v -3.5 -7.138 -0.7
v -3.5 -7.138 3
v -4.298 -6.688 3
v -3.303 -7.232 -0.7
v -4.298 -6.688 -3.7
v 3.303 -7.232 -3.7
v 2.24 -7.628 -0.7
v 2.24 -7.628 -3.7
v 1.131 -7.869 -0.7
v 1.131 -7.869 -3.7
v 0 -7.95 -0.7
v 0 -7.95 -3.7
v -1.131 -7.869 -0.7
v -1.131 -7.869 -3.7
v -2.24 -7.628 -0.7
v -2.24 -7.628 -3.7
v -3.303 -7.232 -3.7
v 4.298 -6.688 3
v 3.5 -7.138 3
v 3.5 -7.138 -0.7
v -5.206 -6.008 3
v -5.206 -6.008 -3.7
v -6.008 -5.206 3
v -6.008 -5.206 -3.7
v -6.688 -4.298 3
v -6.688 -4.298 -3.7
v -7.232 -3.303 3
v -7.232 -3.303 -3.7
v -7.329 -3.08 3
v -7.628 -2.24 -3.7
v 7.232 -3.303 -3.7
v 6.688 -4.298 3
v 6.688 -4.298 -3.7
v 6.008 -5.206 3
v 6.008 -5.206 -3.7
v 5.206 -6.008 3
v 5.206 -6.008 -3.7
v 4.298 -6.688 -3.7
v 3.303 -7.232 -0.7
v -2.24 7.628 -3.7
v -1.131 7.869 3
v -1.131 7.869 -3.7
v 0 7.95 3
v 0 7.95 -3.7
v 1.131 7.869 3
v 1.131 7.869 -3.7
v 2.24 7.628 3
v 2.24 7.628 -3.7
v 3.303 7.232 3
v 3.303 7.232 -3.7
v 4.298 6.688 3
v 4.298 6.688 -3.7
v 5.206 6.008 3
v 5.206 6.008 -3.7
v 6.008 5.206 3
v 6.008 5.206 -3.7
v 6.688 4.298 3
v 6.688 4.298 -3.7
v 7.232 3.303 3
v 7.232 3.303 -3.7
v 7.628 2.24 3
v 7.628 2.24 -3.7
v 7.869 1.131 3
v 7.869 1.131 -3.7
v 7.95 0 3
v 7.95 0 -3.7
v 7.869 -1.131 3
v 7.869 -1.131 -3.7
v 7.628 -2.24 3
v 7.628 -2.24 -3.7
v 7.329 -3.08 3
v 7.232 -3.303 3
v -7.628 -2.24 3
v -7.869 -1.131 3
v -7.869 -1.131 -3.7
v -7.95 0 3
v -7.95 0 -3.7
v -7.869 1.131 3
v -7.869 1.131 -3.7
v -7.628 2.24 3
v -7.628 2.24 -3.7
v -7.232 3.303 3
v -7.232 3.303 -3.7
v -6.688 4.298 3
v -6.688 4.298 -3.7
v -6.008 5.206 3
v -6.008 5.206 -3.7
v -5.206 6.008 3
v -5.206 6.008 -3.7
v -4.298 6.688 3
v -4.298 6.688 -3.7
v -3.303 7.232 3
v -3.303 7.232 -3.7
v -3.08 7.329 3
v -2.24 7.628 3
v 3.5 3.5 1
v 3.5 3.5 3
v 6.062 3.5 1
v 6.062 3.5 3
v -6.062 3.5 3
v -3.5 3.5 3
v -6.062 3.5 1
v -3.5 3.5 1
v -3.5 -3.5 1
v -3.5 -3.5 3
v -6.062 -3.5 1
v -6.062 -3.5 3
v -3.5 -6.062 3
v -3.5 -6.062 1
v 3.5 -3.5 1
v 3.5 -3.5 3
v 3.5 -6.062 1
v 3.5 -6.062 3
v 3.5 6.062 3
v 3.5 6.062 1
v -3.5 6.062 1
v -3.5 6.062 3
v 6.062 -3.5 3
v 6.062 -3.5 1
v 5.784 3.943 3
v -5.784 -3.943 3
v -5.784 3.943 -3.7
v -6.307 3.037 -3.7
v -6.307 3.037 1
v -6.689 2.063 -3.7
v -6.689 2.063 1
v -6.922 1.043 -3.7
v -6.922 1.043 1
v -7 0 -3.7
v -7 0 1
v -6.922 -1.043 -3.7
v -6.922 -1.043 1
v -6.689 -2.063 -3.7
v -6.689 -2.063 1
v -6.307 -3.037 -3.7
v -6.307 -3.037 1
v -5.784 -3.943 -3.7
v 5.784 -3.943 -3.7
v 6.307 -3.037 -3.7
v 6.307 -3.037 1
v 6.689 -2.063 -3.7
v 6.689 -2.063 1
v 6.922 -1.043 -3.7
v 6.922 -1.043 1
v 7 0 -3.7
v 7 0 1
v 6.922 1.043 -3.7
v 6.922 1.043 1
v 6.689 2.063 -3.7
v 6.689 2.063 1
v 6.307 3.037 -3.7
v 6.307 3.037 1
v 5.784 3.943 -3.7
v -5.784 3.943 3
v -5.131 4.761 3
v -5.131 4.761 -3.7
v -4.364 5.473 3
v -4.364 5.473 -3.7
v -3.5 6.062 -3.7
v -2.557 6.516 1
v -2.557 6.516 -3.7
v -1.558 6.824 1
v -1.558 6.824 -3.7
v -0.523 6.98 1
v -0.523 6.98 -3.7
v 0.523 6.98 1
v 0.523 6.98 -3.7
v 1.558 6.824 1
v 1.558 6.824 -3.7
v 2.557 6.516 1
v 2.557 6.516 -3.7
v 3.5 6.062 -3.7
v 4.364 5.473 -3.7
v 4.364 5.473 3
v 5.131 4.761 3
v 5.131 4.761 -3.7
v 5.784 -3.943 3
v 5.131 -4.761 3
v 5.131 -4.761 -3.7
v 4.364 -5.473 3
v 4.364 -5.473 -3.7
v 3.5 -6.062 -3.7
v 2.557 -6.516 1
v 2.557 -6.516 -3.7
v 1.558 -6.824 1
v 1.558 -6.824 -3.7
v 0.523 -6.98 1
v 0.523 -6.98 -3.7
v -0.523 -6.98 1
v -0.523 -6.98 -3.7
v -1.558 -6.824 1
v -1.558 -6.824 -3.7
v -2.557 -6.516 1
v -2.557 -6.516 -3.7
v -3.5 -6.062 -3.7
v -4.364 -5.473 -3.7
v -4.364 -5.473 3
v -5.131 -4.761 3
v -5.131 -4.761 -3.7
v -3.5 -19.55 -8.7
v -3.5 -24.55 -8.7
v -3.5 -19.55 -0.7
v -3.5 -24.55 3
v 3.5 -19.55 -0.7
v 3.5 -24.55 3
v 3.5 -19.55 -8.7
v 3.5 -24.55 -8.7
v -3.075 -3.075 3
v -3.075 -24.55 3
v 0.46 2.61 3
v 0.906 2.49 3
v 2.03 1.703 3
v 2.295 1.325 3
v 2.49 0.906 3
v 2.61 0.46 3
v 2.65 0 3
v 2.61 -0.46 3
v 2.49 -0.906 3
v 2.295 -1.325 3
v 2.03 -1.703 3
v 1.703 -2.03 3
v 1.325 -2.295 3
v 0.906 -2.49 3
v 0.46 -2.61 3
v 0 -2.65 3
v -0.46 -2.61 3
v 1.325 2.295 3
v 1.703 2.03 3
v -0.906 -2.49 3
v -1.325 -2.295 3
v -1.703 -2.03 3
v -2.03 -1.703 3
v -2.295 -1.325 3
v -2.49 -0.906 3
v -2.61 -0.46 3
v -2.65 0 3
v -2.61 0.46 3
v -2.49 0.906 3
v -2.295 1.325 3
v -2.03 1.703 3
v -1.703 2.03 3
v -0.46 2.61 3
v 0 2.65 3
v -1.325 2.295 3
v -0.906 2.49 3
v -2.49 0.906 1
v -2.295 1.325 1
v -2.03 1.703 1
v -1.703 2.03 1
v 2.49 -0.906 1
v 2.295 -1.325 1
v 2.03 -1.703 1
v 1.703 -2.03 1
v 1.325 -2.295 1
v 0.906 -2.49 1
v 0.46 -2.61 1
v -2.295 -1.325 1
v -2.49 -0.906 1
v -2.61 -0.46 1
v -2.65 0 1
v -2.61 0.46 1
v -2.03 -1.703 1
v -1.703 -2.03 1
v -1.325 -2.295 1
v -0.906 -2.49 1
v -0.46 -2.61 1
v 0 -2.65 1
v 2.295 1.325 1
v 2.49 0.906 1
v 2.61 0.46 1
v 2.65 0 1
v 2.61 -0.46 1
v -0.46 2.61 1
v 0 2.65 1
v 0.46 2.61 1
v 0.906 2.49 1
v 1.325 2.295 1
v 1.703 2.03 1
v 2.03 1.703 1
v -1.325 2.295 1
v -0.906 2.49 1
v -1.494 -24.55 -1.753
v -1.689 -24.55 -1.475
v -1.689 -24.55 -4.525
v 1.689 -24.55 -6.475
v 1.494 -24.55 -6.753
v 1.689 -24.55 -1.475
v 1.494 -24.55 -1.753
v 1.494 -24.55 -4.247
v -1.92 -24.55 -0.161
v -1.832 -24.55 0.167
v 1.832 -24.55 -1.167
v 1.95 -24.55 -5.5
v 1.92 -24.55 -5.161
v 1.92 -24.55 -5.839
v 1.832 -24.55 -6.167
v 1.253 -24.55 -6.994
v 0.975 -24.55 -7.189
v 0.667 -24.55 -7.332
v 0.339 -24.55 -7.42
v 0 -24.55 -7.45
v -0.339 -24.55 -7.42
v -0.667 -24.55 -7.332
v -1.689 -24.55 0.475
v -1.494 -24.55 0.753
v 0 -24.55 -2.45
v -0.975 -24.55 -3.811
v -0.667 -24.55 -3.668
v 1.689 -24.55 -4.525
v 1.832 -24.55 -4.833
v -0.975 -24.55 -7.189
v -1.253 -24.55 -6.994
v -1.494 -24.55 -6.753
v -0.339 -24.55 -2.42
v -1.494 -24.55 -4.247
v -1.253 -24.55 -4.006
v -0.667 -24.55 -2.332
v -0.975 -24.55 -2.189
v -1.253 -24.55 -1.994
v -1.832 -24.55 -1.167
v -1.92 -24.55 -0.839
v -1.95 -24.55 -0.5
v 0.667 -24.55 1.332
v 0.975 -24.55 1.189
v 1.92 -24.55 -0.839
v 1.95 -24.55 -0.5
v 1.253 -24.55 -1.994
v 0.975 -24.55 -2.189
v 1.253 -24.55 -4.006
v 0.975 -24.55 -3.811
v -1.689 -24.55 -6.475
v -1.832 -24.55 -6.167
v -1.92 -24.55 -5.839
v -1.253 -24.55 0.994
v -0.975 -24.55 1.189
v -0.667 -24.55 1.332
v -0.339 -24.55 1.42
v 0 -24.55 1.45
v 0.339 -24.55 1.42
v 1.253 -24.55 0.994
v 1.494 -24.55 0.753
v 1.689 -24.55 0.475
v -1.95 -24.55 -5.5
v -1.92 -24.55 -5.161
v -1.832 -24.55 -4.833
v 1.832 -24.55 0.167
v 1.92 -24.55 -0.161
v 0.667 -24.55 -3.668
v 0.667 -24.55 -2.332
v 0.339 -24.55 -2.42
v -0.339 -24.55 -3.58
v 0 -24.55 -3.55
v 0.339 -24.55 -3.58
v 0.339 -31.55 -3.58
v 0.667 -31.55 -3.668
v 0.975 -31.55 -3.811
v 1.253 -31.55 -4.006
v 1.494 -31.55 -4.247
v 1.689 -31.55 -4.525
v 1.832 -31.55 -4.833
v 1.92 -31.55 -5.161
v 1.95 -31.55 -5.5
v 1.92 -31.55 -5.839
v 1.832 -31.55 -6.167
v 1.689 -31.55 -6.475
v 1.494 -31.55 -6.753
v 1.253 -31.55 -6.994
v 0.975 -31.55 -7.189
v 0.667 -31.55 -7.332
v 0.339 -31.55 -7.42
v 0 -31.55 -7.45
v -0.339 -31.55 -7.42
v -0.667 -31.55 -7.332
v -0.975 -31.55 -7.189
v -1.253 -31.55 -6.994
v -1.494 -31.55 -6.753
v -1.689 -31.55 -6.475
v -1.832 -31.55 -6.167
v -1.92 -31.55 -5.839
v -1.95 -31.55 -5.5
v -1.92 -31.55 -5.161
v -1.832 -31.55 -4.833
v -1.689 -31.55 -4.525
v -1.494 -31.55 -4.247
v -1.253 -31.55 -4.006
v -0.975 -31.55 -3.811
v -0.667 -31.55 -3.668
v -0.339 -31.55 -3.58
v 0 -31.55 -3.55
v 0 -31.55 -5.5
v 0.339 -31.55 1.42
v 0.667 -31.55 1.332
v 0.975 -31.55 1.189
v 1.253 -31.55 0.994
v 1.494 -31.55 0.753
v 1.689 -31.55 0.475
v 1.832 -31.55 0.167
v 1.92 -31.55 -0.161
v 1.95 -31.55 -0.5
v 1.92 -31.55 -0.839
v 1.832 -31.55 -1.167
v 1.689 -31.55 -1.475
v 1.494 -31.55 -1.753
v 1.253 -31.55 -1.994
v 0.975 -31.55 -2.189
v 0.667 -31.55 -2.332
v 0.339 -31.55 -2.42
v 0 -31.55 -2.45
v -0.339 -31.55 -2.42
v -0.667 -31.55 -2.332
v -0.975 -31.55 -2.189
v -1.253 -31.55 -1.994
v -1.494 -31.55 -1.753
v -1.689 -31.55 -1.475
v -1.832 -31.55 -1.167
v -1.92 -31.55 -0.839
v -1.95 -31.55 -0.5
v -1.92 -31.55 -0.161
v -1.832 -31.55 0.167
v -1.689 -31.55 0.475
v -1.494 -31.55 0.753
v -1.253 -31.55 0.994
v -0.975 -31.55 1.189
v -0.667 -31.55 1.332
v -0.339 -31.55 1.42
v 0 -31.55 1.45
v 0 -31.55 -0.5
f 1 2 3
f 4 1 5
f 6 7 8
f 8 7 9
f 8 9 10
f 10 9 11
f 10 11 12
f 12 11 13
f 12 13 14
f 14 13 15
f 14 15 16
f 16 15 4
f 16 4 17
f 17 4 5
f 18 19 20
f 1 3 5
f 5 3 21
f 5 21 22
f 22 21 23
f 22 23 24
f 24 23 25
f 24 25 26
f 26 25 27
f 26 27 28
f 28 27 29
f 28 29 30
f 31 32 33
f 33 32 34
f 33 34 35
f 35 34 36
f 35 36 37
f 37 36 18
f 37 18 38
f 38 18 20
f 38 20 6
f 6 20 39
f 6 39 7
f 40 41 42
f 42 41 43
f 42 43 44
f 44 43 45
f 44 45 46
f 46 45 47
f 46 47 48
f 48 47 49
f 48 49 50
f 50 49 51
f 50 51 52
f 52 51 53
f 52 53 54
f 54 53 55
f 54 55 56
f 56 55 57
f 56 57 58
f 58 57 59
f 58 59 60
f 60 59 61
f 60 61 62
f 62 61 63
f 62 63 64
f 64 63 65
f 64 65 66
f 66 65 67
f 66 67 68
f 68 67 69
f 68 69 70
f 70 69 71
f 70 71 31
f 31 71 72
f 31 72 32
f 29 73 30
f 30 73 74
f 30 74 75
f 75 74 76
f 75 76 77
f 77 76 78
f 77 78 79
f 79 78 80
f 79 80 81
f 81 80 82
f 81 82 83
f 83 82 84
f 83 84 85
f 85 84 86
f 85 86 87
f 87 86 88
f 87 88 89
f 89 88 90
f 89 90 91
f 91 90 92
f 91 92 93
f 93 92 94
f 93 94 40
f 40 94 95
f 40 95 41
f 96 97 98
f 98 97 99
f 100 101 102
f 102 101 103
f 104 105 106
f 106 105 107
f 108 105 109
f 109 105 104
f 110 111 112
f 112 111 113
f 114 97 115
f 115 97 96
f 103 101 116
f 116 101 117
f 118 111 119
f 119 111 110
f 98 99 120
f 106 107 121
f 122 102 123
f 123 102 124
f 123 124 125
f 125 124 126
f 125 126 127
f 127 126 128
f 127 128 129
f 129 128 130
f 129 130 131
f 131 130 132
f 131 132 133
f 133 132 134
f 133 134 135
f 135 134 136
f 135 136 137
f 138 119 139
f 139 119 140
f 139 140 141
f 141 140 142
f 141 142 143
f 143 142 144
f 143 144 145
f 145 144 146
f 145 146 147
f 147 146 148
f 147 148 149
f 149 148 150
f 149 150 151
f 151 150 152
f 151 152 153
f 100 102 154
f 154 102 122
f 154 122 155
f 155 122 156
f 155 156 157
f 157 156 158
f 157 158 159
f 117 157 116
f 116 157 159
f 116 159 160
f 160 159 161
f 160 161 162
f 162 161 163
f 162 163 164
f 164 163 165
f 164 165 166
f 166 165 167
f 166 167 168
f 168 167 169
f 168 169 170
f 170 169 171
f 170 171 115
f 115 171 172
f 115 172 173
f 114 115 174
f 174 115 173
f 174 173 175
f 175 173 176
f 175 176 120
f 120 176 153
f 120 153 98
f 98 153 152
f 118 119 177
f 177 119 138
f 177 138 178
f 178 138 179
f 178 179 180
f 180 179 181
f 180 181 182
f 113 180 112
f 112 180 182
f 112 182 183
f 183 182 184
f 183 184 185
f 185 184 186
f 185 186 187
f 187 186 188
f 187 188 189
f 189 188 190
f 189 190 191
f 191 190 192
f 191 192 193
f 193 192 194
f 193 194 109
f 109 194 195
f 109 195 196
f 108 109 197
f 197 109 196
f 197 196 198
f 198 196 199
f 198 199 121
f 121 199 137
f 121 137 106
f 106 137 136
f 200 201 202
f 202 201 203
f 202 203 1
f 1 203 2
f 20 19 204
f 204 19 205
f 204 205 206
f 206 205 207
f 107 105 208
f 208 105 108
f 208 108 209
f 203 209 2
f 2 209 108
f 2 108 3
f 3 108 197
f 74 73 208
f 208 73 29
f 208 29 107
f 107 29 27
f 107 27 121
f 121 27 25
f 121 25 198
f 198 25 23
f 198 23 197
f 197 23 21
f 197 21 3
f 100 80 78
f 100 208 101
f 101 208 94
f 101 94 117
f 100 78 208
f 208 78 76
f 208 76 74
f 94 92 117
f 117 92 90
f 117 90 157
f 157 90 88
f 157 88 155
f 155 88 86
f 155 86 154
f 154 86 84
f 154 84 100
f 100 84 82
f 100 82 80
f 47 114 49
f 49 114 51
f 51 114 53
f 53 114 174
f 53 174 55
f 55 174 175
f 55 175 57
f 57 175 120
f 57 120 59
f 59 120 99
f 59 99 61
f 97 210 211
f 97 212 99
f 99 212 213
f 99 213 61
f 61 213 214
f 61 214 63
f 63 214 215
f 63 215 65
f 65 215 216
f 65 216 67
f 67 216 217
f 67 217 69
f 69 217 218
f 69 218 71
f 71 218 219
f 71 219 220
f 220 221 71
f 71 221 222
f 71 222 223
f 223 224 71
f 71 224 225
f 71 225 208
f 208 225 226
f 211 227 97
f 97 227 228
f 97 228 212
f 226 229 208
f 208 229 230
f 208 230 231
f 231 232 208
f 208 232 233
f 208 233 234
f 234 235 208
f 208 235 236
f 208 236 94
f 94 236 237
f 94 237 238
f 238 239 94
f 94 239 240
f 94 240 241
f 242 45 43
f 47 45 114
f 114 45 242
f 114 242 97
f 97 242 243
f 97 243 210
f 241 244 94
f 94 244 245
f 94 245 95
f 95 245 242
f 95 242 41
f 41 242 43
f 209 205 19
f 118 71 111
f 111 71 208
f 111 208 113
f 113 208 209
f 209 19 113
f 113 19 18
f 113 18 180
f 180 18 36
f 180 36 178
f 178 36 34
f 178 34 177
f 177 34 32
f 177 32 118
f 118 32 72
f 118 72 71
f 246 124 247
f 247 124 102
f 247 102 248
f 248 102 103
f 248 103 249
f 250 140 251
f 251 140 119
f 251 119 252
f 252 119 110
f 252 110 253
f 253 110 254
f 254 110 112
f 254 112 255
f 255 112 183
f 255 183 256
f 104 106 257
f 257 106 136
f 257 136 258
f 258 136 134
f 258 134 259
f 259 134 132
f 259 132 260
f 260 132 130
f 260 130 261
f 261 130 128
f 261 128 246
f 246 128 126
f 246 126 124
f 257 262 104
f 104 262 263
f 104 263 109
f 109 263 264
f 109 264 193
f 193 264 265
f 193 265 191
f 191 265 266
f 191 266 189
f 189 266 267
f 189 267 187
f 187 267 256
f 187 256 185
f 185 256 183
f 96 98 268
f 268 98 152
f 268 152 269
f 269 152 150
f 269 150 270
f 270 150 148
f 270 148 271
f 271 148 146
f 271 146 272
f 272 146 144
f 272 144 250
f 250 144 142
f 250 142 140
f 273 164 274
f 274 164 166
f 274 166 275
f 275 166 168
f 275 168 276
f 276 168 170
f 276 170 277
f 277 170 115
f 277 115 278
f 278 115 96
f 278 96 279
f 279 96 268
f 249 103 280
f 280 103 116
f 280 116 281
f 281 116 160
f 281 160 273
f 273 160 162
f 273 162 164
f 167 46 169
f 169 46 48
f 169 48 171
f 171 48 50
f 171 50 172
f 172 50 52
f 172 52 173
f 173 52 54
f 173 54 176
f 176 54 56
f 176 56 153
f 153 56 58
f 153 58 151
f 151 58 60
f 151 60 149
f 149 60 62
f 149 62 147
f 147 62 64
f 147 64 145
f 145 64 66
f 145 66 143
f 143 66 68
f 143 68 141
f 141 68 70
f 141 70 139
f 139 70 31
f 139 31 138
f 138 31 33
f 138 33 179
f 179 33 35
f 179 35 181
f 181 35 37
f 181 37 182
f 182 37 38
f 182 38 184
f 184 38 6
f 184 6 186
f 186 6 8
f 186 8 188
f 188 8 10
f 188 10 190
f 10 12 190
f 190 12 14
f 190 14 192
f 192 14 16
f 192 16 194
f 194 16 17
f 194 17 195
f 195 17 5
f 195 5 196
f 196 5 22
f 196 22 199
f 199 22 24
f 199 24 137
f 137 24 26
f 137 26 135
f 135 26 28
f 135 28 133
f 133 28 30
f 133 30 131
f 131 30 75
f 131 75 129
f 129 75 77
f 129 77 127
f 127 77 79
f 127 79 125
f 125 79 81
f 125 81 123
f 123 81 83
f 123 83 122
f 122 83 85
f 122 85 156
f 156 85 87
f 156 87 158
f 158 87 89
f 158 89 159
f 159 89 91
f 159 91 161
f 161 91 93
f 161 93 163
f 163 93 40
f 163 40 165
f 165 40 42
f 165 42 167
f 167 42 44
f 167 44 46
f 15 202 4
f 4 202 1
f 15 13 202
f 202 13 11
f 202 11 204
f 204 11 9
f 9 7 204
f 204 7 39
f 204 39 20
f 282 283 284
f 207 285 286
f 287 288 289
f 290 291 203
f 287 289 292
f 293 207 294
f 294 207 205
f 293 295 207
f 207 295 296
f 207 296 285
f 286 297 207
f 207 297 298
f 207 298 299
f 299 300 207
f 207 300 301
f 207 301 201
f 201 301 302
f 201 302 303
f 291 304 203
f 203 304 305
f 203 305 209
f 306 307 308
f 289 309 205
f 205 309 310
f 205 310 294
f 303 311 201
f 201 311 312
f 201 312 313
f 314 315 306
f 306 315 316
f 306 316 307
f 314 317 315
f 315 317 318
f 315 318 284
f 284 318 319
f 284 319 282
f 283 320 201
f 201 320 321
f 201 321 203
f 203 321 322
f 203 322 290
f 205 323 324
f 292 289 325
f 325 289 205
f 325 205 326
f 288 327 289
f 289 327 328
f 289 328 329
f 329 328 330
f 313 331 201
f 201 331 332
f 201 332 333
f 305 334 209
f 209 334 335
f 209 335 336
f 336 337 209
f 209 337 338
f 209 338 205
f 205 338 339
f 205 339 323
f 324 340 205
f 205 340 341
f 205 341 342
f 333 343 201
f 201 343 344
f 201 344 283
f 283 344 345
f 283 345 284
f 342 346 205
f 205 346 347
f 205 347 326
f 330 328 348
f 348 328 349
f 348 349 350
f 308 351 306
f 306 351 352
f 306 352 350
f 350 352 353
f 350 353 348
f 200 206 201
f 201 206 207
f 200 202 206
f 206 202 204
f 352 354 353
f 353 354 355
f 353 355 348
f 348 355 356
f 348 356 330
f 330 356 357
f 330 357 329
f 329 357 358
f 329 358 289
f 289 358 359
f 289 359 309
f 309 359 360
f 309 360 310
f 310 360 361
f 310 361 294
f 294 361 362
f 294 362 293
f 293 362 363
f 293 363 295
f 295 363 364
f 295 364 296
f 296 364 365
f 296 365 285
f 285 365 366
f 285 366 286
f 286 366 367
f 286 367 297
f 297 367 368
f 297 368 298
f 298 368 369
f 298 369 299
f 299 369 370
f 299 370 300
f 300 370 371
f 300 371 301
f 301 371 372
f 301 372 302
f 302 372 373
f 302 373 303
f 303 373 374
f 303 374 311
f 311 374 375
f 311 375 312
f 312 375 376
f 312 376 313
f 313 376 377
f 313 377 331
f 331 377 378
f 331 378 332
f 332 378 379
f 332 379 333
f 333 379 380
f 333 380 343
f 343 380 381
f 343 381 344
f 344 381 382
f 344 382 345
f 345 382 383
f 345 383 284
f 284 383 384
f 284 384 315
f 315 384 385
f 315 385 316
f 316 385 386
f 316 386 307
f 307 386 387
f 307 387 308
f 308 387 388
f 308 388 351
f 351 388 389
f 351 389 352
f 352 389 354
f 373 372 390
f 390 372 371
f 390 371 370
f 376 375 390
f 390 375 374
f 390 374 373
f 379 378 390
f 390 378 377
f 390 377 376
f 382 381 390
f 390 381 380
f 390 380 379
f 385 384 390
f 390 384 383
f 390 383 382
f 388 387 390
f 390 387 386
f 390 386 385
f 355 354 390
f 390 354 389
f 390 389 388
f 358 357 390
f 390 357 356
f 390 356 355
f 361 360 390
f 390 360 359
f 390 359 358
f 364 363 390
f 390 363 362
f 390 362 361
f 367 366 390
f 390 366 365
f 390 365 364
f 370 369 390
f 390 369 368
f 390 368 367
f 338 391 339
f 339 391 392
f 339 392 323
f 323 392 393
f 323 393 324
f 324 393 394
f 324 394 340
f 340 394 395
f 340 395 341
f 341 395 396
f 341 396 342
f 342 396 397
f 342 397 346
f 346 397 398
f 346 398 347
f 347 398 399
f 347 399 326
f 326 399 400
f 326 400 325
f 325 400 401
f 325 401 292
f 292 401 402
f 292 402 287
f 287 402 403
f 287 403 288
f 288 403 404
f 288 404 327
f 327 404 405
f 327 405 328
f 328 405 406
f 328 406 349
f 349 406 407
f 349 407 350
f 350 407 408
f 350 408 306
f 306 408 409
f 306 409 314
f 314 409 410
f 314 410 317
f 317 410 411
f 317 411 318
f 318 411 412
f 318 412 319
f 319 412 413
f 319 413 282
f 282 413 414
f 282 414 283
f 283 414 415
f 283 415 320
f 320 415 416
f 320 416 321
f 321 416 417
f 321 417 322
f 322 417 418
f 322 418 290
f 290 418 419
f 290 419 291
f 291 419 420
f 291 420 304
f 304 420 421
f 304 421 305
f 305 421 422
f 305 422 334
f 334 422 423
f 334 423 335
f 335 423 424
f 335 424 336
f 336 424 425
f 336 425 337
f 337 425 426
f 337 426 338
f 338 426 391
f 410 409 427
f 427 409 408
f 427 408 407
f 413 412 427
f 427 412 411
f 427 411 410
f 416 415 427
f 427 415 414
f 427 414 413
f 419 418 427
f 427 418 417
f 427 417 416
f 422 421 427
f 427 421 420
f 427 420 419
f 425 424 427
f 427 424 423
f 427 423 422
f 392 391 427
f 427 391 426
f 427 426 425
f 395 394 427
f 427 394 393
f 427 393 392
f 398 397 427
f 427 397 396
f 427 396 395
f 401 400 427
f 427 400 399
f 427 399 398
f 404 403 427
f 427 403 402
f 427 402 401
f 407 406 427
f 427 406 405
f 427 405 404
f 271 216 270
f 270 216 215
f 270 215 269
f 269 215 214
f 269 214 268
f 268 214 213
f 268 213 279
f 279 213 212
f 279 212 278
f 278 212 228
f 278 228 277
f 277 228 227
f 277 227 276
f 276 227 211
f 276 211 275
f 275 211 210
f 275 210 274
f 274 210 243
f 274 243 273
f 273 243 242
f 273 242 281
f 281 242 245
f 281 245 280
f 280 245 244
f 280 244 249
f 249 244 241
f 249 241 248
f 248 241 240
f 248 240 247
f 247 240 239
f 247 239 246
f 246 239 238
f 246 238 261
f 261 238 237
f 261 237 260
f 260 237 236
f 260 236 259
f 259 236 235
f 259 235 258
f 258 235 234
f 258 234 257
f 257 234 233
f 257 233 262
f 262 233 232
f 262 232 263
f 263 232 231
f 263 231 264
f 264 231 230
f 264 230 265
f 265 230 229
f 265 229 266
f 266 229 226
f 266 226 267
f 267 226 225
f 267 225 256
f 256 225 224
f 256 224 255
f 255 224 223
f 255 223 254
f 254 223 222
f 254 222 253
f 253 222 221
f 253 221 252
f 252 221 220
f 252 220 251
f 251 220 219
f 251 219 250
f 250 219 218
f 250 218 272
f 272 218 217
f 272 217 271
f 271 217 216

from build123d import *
from build123d.topology import SkipClean

# Parameters (mm, degrees)
SKETCH1_R            = 1.5
BOSS_EXTRUDE4_DEPTH  = 3
BOSS_EXTRUDE5_START  = 3
SKETCH3_R            = 7.95
SKETCH3_R_2          = 1.5
BOSS_EXTRUDE5_DEPTH  = 3
SKETCH4_R            = 2.5
CUT_EXTRUDE1_DEPTH   = 1.5
SKETCH5_R            = 7
CUT_EXTRUDE2_DEPTH   = 4
SKETCH6_R            = 7.95
CUT_EXTRUDE3_DEPTH   = 1
SKETCH7_R            = 2.5
CUT_EXTRUDE4_DEPTH   = 0.5
BOSS_EXTRUDE6_START  = 0.7
SKETCH8_R            = 7.95
SKETCH8_R_2          = 7
BOSS_EXTRUDE6_DEPTH  = 0.7
BOSS_EXTRUDE8_START  = 0.7
SKETCH9_R            = 7.95
SKETCH9_R_2          = 1.5
BOSS_EXTRUDE8_DEPTH  = 0.7
BOSS_EXTRUDE9_START  = 0.7
BOSS_EXTRUDE9_DEPTH  = 0.7
SKETCH15_R           = 7
SKETCH15_R_2         = 4.949747468
BOSS_EXTRUDE12_DEPTH = 5.7
SKETCH16_W           = 7
SKETCH16_H           = 7
CUT_EXTRUDE7_DEPTH   = 5.7
SKETCH17_W           = 21.103619628
SKETCH17_H           = 19.457314619
CUT_EXTRUDE8_DEPTH   = 10
SKETCH18_W           = 7
SKETCH18_H           = 8
BOSS_EXTRUDE13_DEPTH = 5
SKETCH19_R           = 1.95
BOSS_EXTRUDE14_DEPTH = 7
SKETCH20_R           = 2.65
CUT_EXTRUDE9_DEPTH   = 10


with BuildPart() as part:
    # Sketch1 → Boss-Extrude4 (new body)
    with BuildSketch(Plane.XY):
        with BuildLine():
            Line((-3.5, -7.138101989), (-3.5, -27.861898011))
            ThreePointArc((-3.5, -27.861898011), (0, -42.95), (3.5, -27.861898011))
            Line((3.5, -27.861898011), (3.5, -7.138101989))
            ThreePointArc((3.5, -7.138101989), (0, 7.95), (-3.5, -7.138101989))
        make_face()
        with BuildLine():
            Line((-3.5, 6.062177826), (-3.5, 3.5))
            Line((-3.5, 3.5), (-6.062177826, 3.5))
            ThreePointArc((-6.062177826, 3.5), (-4.949747468, 4.949747468), (-3.5, 6.062177826))
        make_face(mode=Mode.SUBTRACT)
        with BuildLine():
            Line((3.5, 3.5), (3.5, 6.062177826))
            ThreePointArc((3.5, 6.062177826), (4.949747468, 4.949747468), (6.062177826, 3.5))
            Line((6.062177826, 3.5), (3.5, 3.5))
        make_face(mode=Mode.SUBTRACT)
        Circle(SKETCH1_R, mode=Mode.SUBTRACT)
        with BuildLine():
            Line((-6.062177826, -3.5), (-3.5, -3.5))
            Line((-3.5, -3.5), (-3.5, -6.062177826))
            ThreePointArc((-3.5, -6.062177826), (-4.949747468, -4.949747468), (-6.062177826, -3.5))
        make_face(mode=Mode.SUBTRACT)
        with BuildLine():
            Line((3.5, -3.5), (6.062177826, -3.5))
            ThreePointArc((6.062177826, -3.5), (4.949747468, -4.949747468), (3.5, -6.062177826))
            Line((3.5, -6.062177826), (3.5, -3.5))
        make_face(mode=Mode.SUBTRACT)
        with BuildLine():
            ThreePointArc((3.5, -28.937822174), (4.949747468, -30.050252532), (6.062177826, -31.5))
            Line((6.062177826, -31.5), (3.5, -31.5))
            Line((3.5, -31.5), (3.5, -28.937822174))
        make_face(mode=Mode.SUBTRACT)
        with BuildLine():
            Line((-3.5, -28.937822174), (-3.5, -31.5))
            Line((-3.5, -31.5), (-6.062177826, -31.5))
            ThreePointArc((-6.062177826, -31.5), (-4.949747468, -30.050252532), (-3.5, -28.937822174))
        make_face(mode=Mode.SUBTRACT)
        with BuildLine():
            ThreePointArc((-3.5, -41.062177826), (-4.949747468, -39.949747468), (-6.062177826, -38.5))
            Line((-6.062177826, -38.5), (-3.5, -38.5))
            Line((-3.5, -38.5), (-3.5, -41.062177826))
        make_face(mode=Mode.SUBTRACT)
        with BuildLine():
            ThreePointArc((6.062177826, -38.5), (4.949747468, -39.949747468), (3.5, -41.062177826))
            Line((3.5, -41.062177826), (3.5, -38.5))
            Line((3.5, -38.5), (6.062177826, -38.5))
        make_face(mode=Mode.SUBTRACT)
        with Locations((0, -35)):
            Circle(SKETCH1_R, mode=Mode.SUBTRACT)
    extrude(amount=BOSS_EXTRUDE4_DEPTH)

    # Sketch3 → Boss-Extrude5 (add)
    # profile 1 of 2: a face of its own
    with SkipClean():  # the faces are left unmerged after this step: merging them gives an invalid solid
        with BuildSketch(Plane(origin=(0, 0, 0), x_dir=(-1, 0, 0), z_dir=(0, 0, -1)).offset(BOSS_EXTRUDE5_START)):
            Circle(SKETCH3_R)
            with BuildLine():
                Line((3.5, 3.5), (3.5, 6.062177826))
                ThreePointArc((3.5, 6.062177826), (4.949747468, 4.949747468), (6.062177826, 3.5))
                Line((6.062177826, 3.5), (3.5, 3.5))
            make_face(mode=Mode.SUBTRACT)
            with BuildLine():
                Line((3.5, -3.5), (6.062177826, -3.5))
                ThreePointArc((6.062177826, -3.5), (4.949747468, -4.949747468), (3.5, -6.062177826))
                Line((3.5, -6.062177826), (3.5, -3.5))
            make_face(mode=Mode.SUBTRACT)
            with BuildLine():
                Line((-3.5, -3.5), (-3.5, -6.062177826))
                ThreePointArc((-3.5, -6.062177826), (-4.949747468, -4.949747468), (-6.062177826, -3.5))
                Line((-6.062177826, -3.5), (-3.5, -3.5))
            make_face(mode=Mode.SUBTRACT)
            with BuildLine():
                Line((-3.5, 3.5), (-6.062177826, 3.5))
                ThreePointArc((-6.062177826, 3.5), (-4.949747468, 4.949747468), (-3.5, 6.062177826))
                Line((-3.5, 6.062177826), (-3.5, 3.5))
            make_face(mode=Mode.SUBTRACT)
            Circle(SKETCH3_R_2, mode=Mode.SUBTRACT)
        # profile 2 of 2: a face of its own
        with BuildSketch(Plane(origin=(0, 0, 0), x_dir=(-1, 0, 0), z_dir=(0, 0, -1)).offset(BOSS_EXTRUDE5_START)):
            with Locations((0, -35)):
                Circle(SKETCH3_R)
            with BuildLine():
                Line((-3.5, -38.5), (-3.5, -41.062177826))
                ThreePointArc((-3.5, -41.062177826), (-4.949747468, -39.949747468), (-6.062177826, -38.5))
                Line((-6.062177826, -38.5), (-3.5, -38.5))
            make_face(mode=Mode.SUBTRACT)
            with BuildLine():
                Line((-3.5, -31.5), (-6.062177826, -31.5))
                ThreePointArc((-6.062177826, -31.5), (-4.949747468, -30.050252532), (-3.5, -28.937822174))
                Line((-3.5, -28.937822174), (-3.5, -31.5))
            make_face(mode=Mode.SUBTRACT)
            with BuildLine():
                Line((3.5, -31.5), (3.5, -28.937822174))
                ThreePointArc((3.5, -28.937822174), (4.949747468, -30.050252532), (6.062177826, -31.5))
                Line((6.062177826, -31.5), (3.5, -31.5))
            make_face(mode=Mode.SUBTRACT)
            with BuildLine():
                Line((3.5, -38.5), (6.062177826, -38.5))
                ThreePointArc((6.062177826, -38.5), (4.949747468, -39.949747468), (3.5, -41.062177826))
                Line((3.5, -41.062177826), (3.5, -38.5))
            make_face(mode=Mode.SUBTRACT)
            with Locations((0, -35)):
                Circle(SKETCH3_R_2, mode=Mode.SUBTRACT)
        extrude(amount=-BOSS_EXTRUDE5_DEPTH)

    # Sketch4 → Cut-Extrude1 (cut)
    with SkipClean():  # the faces are left unmerged after this step: merging them gives an invalid solid
        with BuildSketch(Plane.XY.offset(3)):
            with Locations((0, -35)):
                Circle(SKETCH4_R)
            Circle(SKETCH4_R)
        extrude(amount=-CUT_EXTRUDE1_DEPTH, mode=Mode.SUBTRACT)

    # Sketch5 → Cut-Extrude2 (cut)
    with SkipClean():  # the faces are left unmerged after this step: merging them gives an invalid solid
        with BuildSketch(Plane(origin=(0, 0, -3), x_dir=(-1, 0, 0), z_dir=(0, 0, -1))):
            Circle(SKETCH5_R)
        extrude(amount=-CUT_EXTRUDE2_DEPTH, mode=Mode.SUBTRACT)
    add(part.part.scale(1), mode=Mode.REPLACE)  # the faces are merged on a copy

    # Sketch6 → Cut-Extrude3 (cut)
    with BuildSketch(Plane(origin=(0, 0, -3), x_dir=(-1, 0, 0), z_dir=(0, 0, -1))):
        with Locations((0, -35)):
            Circle(SKETCH6_R)
    extrude(amount=-CUT_EXTRUDE3_DEPTH, mode=Mode.SUBTRACT)

    # Sketch7 → Cut-Extrude4 (cut)
    with BuildSketch(Plane.XY.offset(1.5)):
        with Locations((0, -35)):
            Circle(SKETCH7_R)
    extrude(amount=-CUT_EXTRUDE4_DEPTH, mode=Mode.SUBTRACT)

    # Sketch8 → Boss-Extrude6 (add)
    with BuildSketch(Plane(origin=(0, 0, -3), x_dir=(-1, 0, 0), z_dir=(0, 0, -1)).offset(BOSS_EXTRUDE6_START)):
        Circle(SKETCH8_R)
        Circle(SKETCH8_R_2, mode=Mode.SUBTRACT)
    extrude(amount=-BOSS_EXTRUDE6_DEPTH)

    # Sketch9 → Boss-Extrude8 (add)
    with SkipClean():  # the faces are left unmerged after this step: merging them gives an invalid solid
        with BuildSketch(Plane(origin=(0, 0, -2), x_dir=(-1, 0, 0), z_dir=(0, 0, -1)).offset(BOSS_EXTRUDE8_START)):
            with Locations((0, -35)):
                Circle(SKETCH9_R)
            with BuildLine():
                Line((3.5, -31.5), (3.5, -28.937822174))
                ThreePointArc((3.5, -28.937822174), (4.949747468, -30.050252532), (6.062177826, -31.5))
                Line((6.062177826, -31.5), (3.5, -31.5))
            make_face(mode=Mode.SUBTRACT)
            with BuildLine():
                Line((3.5, -38.5), (6.062177826, -38.5))
                ThreePointArc((6.062177826, -38.5), (4.949747468, -39.949747468), (3.5, -41.062177826))
                Line((3.5, -41.062177826), (3.5, -38.5))
            make_face(mode=Mode.SUBTRACT)
            with BuildLine():
                Line((-3.5, -38.5), (-3.5, -41.062177826))
                ThreePointArc((-3.5, -41.062177826), (-4.949747468, -39.949747468), (-6.062177826, -38.5))
                Line((-6.062177826, -38.5), (-3.5, -38.5))
            make_face(mode=Mode.SUBTRACT)
            with BuildLine():
                Line((-3.5, -31.5), (-6.062177826, -31.5))
                ThreePointArc((-6.062177826, -31.5), (-4.949747468, -30.050252532), (-3.5, -28.937822174))
                Line((-3.5, -28.937822174), (-3.5, -31.5))
            make_face(mode=Mode.SUBTRACT)
            with Locations((0, -35)):
                Circle(SKETCH9_R_2, mode=Mode.SUBTRACT)
        extrude(amount=-BOSS_EXTRUDE8_DEPTH)

    # Sketch10 → Boss-Extrude9 (add)
    with SkipClean():  # the faces are left unmerged after this step: merging them gives an invalid solid
        with BuildSketch(Plane(origin=(0, 0, 0), x_dir=(-1, 0, 0), z_dir=(0, 0, -1)).offset(BOSS_EXTRUDE9_START)):
            with BuildLine():
                ThreePointArc((3.5, -7.138101989), (0, -7.95), (-3.5, -7.138101989))
                Line((-3.5, -7.138101989), (-3.5, -27.861898011))
                ThreePointArc((-3.5, -27.861898011), (0, -27.05), (3.5, -27.861898011))
                Line((3.5, -27.861898011), (3.5, -7.138101989))
            make_face()
        extrude(amount=-BOSS_EXTRUDE9_DEPTH)

    # Sketch15 → Boss-Extrude12 (add)
    with SkipClean():  # the faces are left unmerged after this step: merging them gives an invalid solid
        with BuildSketch(Plane(origin=(0, 0, -2.7), x_dir=(-1, 0, 0), z_dir=(0, 0, -1))):
            with Locations((0, -35)):
                Circle(SKETCH15_R)
            with Locations((0, -35)):
                Circle(SKETCH15_R_2, mode=Mode.SUBTRACT)
        extrude(amount=-BOSS_EXTRUDE12_DEPTH)

    # Sketch16 → Cut-Extrude7 (cut)
    with SkipClean():  # the faces are left unmerged after this step: merging them gives an invalid solid
        with BuildSketch(Plane(origin=(0, 0, -2.7), x_dir=(-1, 0, 0), z_dir=(0, 0, -1))):
            with Locations((0, -35)):
                Rectangle(SKETCH16_W, SKETCH16_H)
        extrude(amount=-CUT_EXTRUDE7_DEPTH, mode=Mode.SUBTRACT)

    # Sketch17 → Cut-Extrude8 (cut)
    with SkipClean():  # the faces are left unmerged after this step: merging them gives an invalid solid
        with BuildSketch(Plane(origin=(0, 0, -2.7), x_dir=(-1, 0, 0), z_dir=(0, 0, -1))):
            with Locations((-0.474648884, -34.27865731)):
                Rectangle(SKETCH17_W, SKETCH17_H)
        extrude(amount=-CUT_EXTRUDE8_DEPTH, mode=Mode.SUBTRACT)

    # Sketch18 → Boss-Extrude13 (add)
    with SkipClean():  # the faces are left unmerged after this step: merging them gives an invalid solid
        with BuildSketch(Plane.XZ.offset(24.55)):
            with Locations((0, -4.7)):
                Rectangle(SKETCH18_W, SKETCH18_H)
        extrude(amount=-BOSS_EXTRUDE13_DEPTH)

    # Sketch19 → Boss-Extrude14 (add)
    with SkipClean():  # the faces are left unmerged after this step: merging them gives an invalid solid
        with BuildSketch(Plane.XZ.offset(24.55)):
            with Locations((0, -5.5)):
                Circle(SKETCH19_R)
            with Locations((0, -0.5)):
                Circle(SKETCH19_R)
        extrude(amount=BOSS_EXTRUDE14_DEPTH)

    # Sketch20 → Cut-Extrude9 (cut)
    with SkipClean():  # the faces are left unmerged after this step: merging them gives an invalid solid
        with BuildSketch(Plane.XY.offset(3)):
            Circle(SKETCH20_R)
        extrude(amount=-CUT_EXTRUDE9_DEPTH, mode=Mode.SUBTRACT)


solid = part.part
